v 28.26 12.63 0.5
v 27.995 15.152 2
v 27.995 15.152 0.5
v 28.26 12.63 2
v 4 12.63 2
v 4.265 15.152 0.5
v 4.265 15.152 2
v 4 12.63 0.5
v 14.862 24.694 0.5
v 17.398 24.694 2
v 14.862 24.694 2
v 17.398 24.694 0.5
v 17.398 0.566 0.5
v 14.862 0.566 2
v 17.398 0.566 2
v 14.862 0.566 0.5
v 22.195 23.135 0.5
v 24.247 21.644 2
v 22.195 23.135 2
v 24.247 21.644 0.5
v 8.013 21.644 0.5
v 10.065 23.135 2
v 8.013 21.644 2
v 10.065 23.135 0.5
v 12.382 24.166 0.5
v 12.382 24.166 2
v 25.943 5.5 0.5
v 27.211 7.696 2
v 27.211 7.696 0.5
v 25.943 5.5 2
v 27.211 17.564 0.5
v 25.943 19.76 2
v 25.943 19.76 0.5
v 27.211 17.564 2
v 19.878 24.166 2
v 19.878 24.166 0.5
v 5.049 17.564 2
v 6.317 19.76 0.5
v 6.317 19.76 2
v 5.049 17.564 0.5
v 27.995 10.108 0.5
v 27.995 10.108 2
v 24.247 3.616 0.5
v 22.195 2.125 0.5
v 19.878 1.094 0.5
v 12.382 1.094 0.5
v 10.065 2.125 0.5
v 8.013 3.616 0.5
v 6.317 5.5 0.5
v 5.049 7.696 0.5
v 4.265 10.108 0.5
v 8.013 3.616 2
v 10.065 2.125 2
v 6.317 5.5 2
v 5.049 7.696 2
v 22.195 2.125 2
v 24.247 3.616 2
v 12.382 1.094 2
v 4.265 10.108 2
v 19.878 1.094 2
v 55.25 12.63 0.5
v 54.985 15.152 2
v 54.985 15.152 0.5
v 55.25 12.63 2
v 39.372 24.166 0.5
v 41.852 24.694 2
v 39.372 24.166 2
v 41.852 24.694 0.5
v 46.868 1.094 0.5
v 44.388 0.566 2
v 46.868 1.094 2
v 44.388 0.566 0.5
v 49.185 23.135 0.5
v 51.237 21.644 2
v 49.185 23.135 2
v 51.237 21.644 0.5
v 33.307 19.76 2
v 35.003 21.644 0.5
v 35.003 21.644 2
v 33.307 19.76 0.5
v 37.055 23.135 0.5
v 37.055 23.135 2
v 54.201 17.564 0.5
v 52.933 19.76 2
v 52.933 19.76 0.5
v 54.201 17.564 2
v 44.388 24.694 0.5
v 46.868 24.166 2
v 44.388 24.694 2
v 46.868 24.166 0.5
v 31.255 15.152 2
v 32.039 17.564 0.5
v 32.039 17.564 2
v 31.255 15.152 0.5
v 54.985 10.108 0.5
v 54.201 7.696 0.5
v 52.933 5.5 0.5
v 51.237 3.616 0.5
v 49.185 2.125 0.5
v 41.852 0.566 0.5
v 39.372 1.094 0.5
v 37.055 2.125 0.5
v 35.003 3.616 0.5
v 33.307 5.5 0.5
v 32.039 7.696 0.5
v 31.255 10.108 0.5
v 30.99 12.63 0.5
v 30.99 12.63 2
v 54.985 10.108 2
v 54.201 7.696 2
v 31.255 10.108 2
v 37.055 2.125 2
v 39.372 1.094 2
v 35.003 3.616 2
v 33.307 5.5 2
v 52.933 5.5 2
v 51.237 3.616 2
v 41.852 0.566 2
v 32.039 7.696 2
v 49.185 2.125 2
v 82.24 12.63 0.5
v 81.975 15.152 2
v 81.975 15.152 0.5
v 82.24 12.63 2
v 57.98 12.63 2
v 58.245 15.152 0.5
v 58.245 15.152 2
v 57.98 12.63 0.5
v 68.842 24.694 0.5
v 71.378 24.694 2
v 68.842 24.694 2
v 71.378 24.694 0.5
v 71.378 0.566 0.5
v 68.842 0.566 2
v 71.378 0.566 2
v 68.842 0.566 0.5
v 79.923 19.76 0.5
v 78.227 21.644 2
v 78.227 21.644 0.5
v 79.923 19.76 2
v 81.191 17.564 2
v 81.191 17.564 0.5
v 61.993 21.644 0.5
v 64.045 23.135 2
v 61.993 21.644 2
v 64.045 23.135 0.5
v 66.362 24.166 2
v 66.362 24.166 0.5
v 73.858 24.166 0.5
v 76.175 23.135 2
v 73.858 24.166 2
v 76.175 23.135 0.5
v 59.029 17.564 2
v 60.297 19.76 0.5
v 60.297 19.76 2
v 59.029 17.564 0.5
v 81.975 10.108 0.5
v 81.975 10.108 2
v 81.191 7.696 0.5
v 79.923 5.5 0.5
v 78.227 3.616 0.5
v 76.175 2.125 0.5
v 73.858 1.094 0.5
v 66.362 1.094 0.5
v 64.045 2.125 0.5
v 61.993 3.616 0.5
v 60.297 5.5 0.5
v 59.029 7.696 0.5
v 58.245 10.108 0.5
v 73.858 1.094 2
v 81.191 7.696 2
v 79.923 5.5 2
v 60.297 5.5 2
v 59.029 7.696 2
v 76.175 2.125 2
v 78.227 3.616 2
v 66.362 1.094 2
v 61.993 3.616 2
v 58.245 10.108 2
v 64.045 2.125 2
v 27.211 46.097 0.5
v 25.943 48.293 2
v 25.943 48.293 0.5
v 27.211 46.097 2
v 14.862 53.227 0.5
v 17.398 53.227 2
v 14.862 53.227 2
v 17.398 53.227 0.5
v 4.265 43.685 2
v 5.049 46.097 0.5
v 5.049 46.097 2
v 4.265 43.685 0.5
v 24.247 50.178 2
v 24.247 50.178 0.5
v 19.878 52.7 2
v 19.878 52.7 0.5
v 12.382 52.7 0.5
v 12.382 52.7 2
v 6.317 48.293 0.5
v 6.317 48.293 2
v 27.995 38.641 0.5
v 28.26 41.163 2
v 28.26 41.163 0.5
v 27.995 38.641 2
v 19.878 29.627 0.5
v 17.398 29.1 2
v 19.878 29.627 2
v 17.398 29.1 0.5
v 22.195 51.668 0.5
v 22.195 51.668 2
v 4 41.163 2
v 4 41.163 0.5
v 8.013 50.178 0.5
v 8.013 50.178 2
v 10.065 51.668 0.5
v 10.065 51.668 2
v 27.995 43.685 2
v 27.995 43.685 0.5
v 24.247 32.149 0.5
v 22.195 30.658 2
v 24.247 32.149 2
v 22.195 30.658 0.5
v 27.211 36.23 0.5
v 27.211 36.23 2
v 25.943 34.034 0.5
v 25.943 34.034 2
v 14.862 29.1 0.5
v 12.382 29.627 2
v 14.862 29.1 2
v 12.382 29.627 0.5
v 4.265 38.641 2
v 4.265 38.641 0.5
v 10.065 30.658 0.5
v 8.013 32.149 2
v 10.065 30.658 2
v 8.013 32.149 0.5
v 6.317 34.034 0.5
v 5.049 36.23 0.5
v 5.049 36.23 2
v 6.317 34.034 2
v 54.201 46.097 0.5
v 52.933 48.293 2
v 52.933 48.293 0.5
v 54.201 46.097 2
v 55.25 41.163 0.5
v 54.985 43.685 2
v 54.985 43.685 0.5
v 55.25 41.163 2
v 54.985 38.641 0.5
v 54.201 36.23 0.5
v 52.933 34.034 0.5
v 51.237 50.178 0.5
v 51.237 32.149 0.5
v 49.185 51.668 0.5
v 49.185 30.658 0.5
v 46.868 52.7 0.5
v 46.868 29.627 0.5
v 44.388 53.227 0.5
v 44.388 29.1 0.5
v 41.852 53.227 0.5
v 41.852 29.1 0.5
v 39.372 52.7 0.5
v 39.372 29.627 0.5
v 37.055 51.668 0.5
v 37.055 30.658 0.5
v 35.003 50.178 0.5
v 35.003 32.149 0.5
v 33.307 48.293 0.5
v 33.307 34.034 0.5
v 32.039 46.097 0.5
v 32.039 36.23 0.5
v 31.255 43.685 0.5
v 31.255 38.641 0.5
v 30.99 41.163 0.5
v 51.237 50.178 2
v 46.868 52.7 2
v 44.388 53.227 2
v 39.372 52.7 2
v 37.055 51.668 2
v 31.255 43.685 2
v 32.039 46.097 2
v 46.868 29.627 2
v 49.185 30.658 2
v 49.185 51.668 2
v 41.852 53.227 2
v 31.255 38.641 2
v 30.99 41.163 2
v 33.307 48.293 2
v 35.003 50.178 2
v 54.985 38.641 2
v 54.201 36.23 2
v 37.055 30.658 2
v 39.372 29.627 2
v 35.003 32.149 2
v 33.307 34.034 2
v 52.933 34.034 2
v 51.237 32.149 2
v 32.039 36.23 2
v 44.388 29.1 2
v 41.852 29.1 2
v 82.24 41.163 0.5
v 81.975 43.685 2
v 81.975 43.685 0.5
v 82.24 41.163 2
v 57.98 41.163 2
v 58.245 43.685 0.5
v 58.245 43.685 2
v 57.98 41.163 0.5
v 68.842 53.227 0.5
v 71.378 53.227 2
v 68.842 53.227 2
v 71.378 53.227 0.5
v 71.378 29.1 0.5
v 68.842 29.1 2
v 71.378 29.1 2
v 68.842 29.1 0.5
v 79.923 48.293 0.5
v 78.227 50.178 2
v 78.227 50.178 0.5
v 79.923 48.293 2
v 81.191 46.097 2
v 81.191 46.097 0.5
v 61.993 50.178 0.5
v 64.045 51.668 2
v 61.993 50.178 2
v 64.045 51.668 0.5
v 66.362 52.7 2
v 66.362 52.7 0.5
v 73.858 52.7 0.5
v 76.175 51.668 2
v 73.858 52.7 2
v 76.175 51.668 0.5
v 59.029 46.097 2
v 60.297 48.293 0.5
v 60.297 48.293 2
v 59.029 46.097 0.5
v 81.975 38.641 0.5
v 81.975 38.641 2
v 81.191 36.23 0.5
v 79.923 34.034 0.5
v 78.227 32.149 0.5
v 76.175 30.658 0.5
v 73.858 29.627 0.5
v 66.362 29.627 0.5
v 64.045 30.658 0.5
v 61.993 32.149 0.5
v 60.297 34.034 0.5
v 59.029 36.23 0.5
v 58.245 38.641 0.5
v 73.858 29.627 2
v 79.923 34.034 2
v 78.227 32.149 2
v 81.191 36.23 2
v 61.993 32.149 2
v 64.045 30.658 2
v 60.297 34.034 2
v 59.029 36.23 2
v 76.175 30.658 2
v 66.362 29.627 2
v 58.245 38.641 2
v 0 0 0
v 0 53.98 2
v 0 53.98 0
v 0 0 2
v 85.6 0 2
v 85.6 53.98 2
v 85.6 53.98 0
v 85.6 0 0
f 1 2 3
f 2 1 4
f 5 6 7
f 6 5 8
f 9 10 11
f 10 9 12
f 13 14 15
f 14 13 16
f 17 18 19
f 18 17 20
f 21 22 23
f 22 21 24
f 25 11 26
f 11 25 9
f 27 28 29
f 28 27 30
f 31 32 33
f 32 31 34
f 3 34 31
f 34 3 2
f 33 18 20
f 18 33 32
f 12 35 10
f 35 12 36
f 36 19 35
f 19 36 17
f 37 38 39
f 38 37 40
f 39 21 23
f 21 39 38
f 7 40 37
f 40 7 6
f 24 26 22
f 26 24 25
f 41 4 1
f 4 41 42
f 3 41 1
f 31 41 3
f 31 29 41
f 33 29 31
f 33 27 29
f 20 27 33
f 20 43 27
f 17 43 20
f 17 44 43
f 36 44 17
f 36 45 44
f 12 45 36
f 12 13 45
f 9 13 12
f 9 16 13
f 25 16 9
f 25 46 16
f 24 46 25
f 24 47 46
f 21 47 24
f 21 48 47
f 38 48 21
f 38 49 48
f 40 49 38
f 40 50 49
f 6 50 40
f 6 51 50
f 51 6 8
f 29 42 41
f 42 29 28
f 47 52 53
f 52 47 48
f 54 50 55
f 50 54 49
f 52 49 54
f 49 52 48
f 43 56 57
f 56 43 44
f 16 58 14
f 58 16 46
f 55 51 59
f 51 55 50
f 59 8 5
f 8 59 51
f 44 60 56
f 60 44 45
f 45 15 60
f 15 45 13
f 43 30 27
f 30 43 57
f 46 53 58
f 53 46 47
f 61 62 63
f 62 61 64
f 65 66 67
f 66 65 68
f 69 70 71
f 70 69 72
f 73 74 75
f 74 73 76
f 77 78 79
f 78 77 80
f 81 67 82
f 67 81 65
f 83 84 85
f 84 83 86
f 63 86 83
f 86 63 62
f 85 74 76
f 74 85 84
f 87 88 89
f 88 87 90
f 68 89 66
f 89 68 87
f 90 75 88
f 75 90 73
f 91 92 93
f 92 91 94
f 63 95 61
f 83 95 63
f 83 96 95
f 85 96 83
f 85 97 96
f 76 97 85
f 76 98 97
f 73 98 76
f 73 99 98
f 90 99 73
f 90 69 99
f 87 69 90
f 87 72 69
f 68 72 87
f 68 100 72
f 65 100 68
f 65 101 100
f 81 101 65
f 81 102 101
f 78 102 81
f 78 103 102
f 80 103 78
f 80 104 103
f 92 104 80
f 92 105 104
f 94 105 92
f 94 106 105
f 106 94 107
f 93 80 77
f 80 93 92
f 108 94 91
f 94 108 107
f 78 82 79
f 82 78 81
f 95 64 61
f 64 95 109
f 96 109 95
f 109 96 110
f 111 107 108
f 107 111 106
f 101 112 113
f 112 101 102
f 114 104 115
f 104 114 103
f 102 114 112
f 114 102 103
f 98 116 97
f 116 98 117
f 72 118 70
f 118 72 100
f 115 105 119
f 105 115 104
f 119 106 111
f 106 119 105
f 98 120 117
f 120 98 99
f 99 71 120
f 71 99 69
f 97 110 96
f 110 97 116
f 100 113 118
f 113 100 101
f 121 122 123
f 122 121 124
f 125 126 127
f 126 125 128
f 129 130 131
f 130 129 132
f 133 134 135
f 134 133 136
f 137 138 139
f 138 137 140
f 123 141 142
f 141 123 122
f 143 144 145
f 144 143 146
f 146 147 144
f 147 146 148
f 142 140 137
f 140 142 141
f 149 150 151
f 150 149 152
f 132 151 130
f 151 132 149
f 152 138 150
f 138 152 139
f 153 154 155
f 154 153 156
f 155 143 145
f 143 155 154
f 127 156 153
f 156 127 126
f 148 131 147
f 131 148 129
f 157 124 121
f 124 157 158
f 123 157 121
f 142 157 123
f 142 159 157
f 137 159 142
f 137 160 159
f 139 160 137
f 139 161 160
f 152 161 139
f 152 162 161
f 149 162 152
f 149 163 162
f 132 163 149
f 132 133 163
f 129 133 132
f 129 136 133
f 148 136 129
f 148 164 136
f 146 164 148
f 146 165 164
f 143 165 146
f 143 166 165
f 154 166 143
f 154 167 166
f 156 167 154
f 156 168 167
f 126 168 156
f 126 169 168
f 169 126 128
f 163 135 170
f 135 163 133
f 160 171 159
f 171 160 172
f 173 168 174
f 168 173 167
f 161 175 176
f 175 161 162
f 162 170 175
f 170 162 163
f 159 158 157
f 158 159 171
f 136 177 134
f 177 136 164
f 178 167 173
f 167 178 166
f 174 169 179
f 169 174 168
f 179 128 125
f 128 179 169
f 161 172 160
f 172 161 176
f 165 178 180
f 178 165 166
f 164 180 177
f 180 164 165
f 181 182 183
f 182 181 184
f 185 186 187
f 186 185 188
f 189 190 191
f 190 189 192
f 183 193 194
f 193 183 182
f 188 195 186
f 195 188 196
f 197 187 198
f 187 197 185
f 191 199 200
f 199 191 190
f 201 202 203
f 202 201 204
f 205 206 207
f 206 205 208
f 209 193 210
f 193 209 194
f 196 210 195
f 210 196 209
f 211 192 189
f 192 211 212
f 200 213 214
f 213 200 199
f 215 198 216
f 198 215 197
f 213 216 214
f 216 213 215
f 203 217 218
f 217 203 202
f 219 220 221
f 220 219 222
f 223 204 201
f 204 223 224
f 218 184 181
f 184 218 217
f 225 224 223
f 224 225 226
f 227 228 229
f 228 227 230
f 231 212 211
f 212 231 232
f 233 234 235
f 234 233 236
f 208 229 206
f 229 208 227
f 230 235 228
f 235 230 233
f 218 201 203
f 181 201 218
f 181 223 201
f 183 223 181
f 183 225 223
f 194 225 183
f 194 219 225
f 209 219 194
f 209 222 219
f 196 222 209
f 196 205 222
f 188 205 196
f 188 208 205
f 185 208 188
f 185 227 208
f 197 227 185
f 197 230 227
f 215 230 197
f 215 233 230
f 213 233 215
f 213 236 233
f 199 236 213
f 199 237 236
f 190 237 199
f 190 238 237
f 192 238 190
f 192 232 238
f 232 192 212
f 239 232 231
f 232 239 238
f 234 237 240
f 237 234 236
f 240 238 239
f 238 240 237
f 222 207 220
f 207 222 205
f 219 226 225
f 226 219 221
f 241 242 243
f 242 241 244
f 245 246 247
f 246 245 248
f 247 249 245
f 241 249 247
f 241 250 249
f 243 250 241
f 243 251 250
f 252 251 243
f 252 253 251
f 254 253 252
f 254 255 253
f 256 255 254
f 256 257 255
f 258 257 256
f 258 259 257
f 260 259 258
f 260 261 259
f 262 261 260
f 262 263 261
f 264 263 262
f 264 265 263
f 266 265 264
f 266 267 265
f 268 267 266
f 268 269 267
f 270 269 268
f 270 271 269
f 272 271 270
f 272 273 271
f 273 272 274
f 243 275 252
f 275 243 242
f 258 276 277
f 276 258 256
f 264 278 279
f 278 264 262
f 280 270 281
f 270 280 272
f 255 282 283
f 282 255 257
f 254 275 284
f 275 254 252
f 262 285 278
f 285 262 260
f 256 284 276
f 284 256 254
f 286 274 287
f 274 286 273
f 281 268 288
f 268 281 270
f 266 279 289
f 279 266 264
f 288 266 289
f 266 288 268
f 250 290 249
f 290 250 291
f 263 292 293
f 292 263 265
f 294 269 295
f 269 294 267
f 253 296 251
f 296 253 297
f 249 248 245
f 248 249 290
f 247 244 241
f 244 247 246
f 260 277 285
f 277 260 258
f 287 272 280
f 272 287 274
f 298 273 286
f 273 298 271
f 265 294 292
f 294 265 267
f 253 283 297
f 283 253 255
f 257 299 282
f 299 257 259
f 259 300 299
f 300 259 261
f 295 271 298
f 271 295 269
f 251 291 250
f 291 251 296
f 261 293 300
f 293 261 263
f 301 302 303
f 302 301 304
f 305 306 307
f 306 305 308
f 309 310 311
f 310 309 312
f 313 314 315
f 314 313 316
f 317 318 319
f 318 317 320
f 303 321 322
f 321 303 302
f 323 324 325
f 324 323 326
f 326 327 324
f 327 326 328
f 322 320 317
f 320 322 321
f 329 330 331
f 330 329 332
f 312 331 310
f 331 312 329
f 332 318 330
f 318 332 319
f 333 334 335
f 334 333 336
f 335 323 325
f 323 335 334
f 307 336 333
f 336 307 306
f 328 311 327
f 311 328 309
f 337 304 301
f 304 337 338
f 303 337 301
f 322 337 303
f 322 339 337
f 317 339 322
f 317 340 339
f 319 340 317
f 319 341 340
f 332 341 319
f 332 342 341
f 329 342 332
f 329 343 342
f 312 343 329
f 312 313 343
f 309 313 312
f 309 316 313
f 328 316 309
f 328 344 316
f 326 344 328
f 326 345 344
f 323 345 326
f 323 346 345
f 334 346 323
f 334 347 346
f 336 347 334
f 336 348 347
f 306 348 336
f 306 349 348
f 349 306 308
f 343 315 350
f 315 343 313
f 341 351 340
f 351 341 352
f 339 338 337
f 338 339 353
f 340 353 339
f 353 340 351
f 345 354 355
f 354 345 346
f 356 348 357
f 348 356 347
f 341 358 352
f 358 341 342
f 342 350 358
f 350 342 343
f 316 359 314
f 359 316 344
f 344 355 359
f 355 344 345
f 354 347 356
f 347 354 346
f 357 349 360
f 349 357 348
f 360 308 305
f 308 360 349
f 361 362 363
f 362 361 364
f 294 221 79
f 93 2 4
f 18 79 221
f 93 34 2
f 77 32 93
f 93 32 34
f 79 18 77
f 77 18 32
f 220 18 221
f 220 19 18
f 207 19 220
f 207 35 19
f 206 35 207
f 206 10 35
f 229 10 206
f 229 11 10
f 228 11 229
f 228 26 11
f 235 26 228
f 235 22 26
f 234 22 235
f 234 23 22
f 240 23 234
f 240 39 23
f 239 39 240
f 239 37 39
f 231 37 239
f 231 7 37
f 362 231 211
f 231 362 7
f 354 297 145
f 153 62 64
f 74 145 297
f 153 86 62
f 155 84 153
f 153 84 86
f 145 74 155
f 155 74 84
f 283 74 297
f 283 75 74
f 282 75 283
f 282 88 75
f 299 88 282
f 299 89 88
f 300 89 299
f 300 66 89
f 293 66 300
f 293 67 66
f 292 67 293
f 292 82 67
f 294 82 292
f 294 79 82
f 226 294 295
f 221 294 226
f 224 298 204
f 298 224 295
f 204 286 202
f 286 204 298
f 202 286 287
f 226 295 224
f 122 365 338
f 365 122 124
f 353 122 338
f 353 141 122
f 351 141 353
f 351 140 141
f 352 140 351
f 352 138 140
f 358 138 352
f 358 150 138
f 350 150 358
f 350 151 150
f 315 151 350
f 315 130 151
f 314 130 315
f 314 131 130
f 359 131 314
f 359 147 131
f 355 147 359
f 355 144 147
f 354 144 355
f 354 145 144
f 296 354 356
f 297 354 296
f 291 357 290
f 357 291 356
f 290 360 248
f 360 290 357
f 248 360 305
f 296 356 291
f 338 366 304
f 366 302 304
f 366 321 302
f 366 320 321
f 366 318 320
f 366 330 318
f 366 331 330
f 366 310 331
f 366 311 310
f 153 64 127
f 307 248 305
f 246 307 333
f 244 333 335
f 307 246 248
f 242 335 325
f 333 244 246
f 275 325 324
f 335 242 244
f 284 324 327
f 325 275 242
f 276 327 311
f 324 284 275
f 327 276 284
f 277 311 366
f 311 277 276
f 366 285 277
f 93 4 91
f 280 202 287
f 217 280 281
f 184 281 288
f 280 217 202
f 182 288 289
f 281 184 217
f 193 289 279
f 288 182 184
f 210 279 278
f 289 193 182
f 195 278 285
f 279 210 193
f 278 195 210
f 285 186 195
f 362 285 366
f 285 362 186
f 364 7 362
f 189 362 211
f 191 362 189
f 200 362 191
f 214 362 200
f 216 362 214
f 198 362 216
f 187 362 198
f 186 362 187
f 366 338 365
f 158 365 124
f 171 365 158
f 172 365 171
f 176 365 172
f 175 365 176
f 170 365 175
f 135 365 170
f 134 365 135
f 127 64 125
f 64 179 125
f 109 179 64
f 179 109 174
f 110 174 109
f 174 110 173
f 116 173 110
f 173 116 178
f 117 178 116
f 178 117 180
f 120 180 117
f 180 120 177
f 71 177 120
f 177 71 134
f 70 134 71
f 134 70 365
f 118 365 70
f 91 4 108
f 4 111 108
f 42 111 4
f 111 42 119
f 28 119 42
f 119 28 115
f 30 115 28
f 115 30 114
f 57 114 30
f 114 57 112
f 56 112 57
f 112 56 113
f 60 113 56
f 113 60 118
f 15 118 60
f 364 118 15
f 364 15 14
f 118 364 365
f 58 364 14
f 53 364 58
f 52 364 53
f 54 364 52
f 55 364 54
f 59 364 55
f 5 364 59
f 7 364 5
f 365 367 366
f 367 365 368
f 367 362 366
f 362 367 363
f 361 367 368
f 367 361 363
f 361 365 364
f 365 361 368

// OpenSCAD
// Credit card coin holder
// Card width
cardX = 85.6;
// Card height
cardY = 53.98;
// Card Thickness
cardThickness = 2;
// Number of rows of coins
numRows = 2;
// Number of coins per row
numCols = 3;
// Total number of coins
numCoins = numRows * numCols;
// Radius of the coin holes
coinRadius = 12.13;
// X Edge Offset
edgeXOffset = 0.5;
// Y Edge Offset
edgeYOffset = 4;

distanceBetweenCentersX = cardX / numCols;
distanceBetweenCentersY = cardY / numRows;

centersX = [for (i = [0,1,numCols]) distanceBetweenCentersX*i + coinRadius + edgeXOffset];
centersY = [for (i = [0,1,numRows]) distanceBetweenCentersY*i + coinRadius + edgeYOffset];

//cylinders = [for (k=centersX) for (j = centersY) cylinder(cardThickness,r=coinRadius,center=[k,j])];

difference() {
    cube([cardX, cardY, cardThickness], [0, 0]);

    for (k=centersX) {
        for (j=centersY) {
            echo(k);
            echo(j); 
            translate([j,k,.5])
            cylinder(cardThickness,r=coinRadius);
        }
    }
}
